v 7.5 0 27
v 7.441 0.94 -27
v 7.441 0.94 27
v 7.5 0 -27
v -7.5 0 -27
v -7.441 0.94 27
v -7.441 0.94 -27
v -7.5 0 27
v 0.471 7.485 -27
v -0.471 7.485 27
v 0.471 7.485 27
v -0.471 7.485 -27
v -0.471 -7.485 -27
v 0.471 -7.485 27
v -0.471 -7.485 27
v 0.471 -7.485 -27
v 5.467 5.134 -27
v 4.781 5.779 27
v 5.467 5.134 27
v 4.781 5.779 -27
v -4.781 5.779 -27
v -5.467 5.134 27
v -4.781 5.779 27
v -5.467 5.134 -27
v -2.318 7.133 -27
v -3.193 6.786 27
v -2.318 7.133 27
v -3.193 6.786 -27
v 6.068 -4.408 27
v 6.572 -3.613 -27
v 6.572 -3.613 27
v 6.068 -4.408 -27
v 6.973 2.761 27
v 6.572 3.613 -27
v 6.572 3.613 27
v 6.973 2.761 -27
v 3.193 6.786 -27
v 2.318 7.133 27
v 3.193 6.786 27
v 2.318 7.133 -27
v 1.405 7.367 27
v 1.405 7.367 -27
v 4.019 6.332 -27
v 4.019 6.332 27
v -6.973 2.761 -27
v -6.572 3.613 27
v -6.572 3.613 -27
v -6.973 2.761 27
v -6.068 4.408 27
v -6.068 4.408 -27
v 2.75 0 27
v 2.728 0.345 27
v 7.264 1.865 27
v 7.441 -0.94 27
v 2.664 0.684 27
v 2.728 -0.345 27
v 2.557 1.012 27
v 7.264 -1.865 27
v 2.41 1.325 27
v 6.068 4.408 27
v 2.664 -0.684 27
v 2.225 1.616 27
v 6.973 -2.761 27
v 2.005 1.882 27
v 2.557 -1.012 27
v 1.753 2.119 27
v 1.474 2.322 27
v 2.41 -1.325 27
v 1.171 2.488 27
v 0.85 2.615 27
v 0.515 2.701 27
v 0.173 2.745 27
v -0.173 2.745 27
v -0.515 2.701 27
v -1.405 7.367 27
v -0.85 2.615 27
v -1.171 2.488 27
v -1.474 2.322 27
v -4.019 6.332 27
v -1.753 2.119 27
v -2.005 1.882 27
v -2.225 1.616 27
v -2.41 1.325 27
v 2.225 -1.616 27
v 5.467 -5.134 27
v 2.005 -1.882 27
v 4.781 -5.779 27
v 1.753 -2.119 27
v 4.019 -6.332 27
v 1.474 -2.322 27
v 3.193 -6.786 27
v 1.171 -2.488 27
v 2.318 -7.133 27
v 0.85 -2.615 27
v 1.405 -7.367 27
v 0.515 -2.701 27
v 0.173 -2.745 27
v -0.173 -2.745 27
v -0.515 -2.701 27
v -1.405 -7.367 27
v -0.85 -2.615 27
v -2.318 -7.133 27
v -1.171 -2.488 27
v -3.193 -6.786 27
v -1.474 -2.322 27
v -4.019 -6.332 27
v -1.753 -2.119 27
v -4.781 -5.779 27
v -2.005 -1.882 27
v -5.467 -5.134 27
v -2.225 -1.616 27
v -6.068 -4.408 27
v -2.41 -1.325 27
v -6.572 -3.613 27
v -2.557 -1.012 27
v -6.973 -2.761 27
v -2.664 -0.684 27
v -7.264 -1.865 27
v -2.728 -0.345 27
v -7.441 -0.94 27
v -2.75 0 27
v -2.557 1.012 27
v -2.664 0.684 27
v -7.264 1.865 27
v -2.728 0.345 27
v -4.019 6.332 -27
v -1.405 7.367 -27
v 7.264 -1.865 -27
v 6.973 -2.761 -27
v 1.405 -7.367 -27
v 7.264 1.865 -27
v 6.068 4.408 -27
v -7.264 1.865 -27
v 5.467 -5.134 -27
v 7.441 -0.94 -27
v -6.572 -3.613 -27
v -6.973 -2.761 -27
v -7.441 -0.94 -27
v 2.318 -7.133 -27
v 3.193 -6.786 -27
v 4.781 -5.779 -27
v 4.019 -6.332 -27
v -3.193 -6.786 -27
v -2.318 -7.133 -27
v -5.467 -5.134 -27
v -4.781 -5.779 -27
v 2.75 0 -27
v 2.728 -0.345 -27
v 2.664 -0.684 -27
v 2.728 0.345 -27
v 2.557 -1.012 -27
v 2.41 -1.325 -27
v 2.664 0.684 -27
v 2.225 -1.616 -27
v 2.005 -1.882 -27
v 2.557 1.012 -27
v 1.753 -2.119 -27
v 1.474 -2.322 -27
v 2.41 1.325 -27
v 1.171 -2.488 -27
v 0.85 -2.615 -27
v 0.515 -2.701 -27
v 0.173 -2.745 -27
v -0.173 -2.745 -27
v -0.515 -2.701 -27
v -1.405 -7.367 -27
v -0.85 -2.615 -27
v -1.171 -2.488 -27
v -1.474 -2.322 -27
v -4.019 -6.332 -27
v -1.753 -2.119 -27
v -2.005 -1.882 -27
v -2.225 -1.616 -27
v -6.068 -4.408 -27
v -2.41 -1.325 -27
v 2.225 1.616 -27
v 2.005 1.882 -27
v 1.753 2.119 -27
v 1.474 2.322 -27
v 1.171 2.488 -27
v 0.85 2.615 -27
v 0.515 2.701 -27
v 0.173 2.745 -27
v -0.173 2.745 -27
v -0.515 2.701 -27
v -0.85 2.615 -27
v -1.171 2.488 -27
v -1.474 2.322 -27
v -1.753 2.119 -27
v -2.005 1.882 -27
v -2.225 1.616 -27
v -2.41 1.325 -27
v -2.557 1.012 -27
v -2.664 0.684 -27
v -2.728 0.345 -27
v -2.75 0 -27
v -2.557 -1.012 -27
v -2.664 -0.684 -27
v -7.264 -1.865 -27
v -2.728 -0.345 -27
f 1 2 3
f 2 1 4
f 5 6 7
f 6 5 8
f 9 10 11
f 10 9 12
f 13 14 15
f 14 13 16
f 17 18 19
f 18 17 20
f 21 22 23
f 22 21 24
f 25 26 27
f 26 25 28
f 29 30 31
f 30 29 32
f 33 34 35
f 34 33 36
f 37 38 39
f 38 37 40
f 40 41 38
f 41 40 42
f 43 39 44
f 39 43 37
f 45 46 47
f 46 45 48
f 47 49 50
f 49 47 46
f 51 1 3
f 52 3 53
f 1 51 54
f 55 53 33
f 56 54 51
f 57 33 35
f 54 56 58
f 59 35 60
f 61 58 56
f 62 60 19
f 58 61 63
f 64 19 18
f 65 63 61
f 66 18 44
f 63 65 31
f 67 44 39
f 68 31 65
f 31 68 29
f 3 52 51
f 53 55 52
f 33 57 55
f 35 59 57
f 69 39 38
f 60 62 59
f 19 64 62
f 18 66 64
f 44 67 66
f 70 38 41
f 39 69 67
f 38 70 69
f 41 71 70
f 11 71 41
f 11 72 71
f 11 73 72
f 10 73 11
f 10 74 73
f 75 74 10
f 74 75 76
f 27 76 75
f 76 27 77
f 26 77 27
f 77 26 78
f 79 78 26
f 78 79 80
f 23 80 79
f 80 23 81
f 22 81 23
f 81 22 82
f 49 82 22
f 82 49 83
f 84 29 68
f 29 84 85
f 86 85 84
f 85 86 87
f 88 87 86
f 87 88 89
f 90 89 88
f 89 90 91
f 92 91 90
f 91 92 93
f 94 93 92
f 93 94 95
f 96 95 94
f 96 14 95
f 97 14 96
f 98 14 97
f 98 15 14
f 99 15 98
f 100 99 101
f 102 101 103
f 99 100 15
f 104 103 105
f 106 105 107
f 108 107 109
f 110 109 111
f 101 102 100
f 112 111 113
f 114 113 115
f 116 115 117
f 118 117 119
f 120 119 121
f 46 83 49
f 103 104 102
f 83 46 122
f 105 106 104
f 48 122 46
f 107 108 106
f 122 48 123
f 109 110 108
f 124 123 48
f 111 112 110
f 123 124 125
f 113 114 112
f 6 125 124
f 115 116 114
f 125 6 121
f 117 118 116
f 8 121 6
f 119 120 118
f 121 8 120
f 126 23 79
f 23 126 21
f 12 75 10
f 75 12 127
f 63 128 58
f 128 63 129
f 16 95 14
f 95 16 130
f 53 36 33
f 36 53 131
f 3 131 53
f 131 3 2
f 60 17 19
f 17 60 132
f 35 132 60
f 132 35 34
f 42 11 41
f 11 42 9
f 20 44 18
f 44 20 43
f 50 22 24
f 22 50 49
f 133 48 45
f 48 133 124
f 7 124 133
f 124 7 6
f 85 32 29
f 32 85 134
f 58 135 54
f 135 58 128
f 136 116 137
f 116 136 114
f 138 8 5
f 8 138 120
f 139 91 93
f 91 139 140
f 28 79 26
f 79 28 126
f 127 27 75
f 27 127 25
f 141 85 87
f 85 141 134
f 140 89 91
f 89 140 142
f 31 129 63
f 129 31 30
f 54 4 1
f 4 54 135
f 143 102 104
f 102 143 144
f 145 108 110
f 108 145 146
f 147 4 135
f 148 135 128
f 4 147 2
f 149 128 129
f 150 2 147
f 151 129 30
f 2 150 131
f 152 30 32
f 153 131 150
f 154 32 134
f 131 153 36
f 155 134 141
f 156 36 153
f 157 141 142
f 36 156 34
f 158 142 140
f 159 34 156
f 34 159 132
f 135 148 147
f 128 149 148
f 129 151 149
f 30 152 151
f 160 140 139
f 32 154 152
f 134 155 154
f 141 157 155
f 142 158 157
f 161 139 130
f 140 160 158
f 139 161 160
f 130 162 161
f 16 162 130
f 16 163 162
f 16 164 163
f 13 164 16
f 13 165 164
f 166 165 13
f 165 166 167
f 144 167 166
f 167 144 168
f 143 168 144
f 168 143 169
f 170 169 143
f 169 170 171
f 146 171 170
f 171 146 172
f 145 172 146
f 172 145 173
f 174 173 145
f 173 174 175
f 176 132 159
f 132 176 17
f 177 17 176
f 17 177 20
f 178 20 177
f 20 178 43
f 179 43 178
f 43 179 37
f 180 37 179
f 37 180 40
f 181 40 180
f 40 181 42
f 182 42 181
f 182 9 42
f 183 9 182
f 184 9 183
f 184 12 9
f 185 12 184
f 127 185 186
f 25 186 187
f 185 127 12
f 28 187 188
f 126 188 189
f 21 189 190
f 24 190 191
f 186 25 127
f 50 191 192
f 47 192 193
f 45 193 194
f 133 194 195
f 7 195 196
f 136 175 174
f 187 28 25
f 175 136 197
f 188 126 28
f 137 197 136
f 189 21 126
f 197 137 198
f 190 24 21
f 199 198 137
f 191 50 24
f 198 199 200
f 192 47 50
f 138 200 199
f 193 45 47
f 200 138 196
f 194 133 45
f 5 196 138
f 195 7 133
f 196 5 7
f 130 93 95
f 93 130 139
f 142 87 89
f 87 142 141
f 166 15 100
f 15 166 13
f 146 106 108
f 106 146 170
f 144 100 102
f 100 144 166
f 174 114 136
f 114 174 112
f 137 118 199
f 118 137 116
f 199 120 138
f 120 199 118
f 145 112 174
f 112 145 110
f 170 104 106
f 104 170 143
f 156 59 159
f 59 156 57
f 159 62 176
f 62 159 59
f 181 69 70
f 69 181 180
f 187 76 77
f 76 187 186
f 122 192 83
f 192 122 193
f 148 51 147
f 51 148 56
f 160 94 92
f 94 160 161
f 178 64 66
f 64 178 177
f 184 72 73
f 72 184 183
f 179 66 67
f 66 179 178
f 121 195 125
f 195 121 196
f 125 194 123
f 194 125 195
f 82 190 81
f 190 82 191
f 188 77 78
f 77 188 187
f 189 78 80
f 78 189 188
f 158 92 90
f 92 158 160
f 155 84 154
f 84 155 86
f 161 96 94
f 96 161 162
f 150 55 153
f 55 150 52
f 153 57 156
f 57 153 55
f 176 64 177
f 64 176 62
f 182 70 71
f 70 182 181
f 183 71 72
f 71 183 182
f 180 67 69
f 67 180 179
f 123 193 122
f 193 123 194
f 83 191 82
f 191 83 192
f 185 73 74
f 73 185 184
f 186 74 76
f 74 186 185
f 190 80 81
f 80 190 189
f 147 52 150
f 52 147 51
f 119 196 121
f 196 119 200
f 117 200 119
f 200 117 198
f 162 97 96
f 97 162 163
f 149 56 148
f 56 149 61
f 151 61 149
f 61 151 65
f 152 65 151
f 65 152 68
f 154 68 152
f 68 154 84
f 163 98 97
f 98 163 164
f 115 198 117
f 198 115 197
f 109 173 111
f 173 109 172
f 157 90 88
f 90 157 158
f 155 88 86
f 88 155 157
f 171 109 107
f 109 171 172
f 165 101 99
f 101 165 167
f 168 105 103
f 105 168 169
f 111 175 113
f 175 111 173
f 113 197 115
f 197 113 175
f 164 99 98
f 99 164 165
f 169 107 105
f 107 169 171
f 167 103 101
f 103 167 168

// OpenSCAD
$fn = 50;


difference() {
	union() {
		translate(v = [0, 0, -27.0000000000]) {
			cylinder(h = 54, r = 7.5000000000);
		}
	}
	union() {
		translate(v = [0, 0, -100.0000000000]) {
			cylinder(h = 200, r = 2.7500000000);
		}
	}
}
